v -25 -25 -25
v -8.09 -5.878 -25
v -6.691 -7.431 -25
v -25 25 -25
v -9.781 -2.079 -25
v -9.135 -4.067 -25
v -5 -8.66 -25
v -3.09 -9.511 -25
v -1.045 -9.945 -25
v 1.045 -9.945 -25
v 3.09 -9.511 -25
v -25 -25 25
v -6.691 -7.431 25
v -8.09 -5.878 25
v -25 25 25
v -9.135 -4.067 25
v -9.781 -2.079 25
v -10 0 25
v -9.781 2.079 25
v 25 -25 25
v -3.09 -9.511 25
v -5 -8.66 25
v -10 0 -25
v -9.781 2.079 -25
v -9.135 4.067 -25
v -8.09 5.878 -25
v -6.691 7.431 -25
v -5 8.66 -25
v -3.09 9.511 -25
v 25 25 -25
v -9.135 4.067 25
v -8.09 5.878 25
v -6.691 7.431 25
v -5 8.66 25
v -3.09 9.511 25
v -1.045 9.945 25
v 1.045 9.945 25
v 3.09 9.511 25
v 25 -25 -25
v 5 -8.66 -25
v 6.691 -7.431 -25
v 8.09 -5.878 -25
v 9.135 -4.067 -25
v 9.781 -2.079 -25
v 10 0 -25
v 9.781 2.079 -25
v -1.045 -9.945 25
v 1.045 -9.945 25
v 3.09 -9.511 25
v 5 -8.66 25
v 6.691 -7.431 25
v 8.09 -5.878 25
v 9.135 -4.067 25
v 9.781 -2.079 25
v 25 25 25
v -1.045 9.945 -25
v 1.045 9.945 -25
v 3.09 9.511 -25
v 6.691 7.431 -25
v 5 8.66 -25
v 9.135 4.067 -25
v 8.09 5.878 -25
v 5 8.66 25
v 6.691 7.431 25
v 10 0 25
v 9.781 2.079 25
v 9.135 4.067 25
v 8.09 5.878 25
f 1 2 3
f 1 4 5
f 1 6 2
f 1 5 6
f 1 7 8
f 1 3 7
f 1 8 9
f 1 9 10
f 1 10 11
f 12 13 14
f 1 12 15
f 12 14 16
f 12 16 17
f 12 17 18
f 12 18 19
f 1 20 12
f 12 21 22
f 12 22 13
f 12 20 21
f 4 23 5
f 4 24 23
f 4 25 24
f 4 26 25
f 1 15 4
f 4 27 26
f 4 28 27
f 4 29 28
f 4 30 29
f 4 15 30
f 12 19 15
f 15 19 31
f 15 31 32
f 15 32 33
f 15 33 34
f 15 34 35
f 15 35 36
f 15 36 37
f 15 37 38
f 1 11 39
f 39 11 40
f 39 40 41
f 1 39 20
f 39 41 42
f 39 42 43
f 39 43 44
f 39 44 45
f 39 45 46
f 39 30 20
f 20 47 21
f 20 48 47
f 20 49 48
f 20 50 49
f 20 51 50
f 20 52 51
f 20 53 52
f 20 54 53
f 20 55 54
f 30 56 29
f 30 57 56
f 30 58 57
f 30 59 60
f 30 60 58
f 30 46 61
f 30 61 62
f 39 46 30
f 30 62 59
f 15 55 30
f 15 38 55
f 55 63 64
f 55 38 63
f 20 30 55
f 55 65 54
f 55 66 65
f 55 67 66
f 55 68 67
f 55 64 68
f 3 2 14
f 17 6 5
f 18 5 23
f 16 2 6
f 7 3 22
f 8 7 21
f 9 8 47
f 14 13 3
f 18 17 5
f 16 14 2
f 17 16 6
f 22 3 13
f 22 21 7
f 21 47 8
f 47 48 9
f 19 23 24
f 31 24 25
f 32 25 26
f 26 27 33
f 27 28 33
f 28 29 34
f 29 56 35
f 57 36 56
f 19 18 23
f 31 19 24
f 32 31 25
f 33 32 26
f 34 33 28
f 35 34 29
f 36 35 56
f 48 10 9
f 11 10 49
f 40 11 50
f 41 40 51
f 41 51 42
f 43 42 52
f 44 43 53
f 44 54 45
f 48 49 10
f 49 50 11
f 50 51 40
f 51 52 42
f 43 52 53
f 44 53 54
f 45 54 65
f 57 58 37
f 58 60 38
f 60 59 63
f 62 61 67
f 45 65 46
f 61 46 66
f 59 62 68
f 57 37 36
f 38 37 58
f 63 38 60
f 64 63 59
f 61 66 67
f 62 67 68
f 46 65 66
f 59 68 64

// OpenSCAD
difference() {
  cube([50, 50, 50], center = true);
  cylinder(d = 20, h = 60, center = true);
}
